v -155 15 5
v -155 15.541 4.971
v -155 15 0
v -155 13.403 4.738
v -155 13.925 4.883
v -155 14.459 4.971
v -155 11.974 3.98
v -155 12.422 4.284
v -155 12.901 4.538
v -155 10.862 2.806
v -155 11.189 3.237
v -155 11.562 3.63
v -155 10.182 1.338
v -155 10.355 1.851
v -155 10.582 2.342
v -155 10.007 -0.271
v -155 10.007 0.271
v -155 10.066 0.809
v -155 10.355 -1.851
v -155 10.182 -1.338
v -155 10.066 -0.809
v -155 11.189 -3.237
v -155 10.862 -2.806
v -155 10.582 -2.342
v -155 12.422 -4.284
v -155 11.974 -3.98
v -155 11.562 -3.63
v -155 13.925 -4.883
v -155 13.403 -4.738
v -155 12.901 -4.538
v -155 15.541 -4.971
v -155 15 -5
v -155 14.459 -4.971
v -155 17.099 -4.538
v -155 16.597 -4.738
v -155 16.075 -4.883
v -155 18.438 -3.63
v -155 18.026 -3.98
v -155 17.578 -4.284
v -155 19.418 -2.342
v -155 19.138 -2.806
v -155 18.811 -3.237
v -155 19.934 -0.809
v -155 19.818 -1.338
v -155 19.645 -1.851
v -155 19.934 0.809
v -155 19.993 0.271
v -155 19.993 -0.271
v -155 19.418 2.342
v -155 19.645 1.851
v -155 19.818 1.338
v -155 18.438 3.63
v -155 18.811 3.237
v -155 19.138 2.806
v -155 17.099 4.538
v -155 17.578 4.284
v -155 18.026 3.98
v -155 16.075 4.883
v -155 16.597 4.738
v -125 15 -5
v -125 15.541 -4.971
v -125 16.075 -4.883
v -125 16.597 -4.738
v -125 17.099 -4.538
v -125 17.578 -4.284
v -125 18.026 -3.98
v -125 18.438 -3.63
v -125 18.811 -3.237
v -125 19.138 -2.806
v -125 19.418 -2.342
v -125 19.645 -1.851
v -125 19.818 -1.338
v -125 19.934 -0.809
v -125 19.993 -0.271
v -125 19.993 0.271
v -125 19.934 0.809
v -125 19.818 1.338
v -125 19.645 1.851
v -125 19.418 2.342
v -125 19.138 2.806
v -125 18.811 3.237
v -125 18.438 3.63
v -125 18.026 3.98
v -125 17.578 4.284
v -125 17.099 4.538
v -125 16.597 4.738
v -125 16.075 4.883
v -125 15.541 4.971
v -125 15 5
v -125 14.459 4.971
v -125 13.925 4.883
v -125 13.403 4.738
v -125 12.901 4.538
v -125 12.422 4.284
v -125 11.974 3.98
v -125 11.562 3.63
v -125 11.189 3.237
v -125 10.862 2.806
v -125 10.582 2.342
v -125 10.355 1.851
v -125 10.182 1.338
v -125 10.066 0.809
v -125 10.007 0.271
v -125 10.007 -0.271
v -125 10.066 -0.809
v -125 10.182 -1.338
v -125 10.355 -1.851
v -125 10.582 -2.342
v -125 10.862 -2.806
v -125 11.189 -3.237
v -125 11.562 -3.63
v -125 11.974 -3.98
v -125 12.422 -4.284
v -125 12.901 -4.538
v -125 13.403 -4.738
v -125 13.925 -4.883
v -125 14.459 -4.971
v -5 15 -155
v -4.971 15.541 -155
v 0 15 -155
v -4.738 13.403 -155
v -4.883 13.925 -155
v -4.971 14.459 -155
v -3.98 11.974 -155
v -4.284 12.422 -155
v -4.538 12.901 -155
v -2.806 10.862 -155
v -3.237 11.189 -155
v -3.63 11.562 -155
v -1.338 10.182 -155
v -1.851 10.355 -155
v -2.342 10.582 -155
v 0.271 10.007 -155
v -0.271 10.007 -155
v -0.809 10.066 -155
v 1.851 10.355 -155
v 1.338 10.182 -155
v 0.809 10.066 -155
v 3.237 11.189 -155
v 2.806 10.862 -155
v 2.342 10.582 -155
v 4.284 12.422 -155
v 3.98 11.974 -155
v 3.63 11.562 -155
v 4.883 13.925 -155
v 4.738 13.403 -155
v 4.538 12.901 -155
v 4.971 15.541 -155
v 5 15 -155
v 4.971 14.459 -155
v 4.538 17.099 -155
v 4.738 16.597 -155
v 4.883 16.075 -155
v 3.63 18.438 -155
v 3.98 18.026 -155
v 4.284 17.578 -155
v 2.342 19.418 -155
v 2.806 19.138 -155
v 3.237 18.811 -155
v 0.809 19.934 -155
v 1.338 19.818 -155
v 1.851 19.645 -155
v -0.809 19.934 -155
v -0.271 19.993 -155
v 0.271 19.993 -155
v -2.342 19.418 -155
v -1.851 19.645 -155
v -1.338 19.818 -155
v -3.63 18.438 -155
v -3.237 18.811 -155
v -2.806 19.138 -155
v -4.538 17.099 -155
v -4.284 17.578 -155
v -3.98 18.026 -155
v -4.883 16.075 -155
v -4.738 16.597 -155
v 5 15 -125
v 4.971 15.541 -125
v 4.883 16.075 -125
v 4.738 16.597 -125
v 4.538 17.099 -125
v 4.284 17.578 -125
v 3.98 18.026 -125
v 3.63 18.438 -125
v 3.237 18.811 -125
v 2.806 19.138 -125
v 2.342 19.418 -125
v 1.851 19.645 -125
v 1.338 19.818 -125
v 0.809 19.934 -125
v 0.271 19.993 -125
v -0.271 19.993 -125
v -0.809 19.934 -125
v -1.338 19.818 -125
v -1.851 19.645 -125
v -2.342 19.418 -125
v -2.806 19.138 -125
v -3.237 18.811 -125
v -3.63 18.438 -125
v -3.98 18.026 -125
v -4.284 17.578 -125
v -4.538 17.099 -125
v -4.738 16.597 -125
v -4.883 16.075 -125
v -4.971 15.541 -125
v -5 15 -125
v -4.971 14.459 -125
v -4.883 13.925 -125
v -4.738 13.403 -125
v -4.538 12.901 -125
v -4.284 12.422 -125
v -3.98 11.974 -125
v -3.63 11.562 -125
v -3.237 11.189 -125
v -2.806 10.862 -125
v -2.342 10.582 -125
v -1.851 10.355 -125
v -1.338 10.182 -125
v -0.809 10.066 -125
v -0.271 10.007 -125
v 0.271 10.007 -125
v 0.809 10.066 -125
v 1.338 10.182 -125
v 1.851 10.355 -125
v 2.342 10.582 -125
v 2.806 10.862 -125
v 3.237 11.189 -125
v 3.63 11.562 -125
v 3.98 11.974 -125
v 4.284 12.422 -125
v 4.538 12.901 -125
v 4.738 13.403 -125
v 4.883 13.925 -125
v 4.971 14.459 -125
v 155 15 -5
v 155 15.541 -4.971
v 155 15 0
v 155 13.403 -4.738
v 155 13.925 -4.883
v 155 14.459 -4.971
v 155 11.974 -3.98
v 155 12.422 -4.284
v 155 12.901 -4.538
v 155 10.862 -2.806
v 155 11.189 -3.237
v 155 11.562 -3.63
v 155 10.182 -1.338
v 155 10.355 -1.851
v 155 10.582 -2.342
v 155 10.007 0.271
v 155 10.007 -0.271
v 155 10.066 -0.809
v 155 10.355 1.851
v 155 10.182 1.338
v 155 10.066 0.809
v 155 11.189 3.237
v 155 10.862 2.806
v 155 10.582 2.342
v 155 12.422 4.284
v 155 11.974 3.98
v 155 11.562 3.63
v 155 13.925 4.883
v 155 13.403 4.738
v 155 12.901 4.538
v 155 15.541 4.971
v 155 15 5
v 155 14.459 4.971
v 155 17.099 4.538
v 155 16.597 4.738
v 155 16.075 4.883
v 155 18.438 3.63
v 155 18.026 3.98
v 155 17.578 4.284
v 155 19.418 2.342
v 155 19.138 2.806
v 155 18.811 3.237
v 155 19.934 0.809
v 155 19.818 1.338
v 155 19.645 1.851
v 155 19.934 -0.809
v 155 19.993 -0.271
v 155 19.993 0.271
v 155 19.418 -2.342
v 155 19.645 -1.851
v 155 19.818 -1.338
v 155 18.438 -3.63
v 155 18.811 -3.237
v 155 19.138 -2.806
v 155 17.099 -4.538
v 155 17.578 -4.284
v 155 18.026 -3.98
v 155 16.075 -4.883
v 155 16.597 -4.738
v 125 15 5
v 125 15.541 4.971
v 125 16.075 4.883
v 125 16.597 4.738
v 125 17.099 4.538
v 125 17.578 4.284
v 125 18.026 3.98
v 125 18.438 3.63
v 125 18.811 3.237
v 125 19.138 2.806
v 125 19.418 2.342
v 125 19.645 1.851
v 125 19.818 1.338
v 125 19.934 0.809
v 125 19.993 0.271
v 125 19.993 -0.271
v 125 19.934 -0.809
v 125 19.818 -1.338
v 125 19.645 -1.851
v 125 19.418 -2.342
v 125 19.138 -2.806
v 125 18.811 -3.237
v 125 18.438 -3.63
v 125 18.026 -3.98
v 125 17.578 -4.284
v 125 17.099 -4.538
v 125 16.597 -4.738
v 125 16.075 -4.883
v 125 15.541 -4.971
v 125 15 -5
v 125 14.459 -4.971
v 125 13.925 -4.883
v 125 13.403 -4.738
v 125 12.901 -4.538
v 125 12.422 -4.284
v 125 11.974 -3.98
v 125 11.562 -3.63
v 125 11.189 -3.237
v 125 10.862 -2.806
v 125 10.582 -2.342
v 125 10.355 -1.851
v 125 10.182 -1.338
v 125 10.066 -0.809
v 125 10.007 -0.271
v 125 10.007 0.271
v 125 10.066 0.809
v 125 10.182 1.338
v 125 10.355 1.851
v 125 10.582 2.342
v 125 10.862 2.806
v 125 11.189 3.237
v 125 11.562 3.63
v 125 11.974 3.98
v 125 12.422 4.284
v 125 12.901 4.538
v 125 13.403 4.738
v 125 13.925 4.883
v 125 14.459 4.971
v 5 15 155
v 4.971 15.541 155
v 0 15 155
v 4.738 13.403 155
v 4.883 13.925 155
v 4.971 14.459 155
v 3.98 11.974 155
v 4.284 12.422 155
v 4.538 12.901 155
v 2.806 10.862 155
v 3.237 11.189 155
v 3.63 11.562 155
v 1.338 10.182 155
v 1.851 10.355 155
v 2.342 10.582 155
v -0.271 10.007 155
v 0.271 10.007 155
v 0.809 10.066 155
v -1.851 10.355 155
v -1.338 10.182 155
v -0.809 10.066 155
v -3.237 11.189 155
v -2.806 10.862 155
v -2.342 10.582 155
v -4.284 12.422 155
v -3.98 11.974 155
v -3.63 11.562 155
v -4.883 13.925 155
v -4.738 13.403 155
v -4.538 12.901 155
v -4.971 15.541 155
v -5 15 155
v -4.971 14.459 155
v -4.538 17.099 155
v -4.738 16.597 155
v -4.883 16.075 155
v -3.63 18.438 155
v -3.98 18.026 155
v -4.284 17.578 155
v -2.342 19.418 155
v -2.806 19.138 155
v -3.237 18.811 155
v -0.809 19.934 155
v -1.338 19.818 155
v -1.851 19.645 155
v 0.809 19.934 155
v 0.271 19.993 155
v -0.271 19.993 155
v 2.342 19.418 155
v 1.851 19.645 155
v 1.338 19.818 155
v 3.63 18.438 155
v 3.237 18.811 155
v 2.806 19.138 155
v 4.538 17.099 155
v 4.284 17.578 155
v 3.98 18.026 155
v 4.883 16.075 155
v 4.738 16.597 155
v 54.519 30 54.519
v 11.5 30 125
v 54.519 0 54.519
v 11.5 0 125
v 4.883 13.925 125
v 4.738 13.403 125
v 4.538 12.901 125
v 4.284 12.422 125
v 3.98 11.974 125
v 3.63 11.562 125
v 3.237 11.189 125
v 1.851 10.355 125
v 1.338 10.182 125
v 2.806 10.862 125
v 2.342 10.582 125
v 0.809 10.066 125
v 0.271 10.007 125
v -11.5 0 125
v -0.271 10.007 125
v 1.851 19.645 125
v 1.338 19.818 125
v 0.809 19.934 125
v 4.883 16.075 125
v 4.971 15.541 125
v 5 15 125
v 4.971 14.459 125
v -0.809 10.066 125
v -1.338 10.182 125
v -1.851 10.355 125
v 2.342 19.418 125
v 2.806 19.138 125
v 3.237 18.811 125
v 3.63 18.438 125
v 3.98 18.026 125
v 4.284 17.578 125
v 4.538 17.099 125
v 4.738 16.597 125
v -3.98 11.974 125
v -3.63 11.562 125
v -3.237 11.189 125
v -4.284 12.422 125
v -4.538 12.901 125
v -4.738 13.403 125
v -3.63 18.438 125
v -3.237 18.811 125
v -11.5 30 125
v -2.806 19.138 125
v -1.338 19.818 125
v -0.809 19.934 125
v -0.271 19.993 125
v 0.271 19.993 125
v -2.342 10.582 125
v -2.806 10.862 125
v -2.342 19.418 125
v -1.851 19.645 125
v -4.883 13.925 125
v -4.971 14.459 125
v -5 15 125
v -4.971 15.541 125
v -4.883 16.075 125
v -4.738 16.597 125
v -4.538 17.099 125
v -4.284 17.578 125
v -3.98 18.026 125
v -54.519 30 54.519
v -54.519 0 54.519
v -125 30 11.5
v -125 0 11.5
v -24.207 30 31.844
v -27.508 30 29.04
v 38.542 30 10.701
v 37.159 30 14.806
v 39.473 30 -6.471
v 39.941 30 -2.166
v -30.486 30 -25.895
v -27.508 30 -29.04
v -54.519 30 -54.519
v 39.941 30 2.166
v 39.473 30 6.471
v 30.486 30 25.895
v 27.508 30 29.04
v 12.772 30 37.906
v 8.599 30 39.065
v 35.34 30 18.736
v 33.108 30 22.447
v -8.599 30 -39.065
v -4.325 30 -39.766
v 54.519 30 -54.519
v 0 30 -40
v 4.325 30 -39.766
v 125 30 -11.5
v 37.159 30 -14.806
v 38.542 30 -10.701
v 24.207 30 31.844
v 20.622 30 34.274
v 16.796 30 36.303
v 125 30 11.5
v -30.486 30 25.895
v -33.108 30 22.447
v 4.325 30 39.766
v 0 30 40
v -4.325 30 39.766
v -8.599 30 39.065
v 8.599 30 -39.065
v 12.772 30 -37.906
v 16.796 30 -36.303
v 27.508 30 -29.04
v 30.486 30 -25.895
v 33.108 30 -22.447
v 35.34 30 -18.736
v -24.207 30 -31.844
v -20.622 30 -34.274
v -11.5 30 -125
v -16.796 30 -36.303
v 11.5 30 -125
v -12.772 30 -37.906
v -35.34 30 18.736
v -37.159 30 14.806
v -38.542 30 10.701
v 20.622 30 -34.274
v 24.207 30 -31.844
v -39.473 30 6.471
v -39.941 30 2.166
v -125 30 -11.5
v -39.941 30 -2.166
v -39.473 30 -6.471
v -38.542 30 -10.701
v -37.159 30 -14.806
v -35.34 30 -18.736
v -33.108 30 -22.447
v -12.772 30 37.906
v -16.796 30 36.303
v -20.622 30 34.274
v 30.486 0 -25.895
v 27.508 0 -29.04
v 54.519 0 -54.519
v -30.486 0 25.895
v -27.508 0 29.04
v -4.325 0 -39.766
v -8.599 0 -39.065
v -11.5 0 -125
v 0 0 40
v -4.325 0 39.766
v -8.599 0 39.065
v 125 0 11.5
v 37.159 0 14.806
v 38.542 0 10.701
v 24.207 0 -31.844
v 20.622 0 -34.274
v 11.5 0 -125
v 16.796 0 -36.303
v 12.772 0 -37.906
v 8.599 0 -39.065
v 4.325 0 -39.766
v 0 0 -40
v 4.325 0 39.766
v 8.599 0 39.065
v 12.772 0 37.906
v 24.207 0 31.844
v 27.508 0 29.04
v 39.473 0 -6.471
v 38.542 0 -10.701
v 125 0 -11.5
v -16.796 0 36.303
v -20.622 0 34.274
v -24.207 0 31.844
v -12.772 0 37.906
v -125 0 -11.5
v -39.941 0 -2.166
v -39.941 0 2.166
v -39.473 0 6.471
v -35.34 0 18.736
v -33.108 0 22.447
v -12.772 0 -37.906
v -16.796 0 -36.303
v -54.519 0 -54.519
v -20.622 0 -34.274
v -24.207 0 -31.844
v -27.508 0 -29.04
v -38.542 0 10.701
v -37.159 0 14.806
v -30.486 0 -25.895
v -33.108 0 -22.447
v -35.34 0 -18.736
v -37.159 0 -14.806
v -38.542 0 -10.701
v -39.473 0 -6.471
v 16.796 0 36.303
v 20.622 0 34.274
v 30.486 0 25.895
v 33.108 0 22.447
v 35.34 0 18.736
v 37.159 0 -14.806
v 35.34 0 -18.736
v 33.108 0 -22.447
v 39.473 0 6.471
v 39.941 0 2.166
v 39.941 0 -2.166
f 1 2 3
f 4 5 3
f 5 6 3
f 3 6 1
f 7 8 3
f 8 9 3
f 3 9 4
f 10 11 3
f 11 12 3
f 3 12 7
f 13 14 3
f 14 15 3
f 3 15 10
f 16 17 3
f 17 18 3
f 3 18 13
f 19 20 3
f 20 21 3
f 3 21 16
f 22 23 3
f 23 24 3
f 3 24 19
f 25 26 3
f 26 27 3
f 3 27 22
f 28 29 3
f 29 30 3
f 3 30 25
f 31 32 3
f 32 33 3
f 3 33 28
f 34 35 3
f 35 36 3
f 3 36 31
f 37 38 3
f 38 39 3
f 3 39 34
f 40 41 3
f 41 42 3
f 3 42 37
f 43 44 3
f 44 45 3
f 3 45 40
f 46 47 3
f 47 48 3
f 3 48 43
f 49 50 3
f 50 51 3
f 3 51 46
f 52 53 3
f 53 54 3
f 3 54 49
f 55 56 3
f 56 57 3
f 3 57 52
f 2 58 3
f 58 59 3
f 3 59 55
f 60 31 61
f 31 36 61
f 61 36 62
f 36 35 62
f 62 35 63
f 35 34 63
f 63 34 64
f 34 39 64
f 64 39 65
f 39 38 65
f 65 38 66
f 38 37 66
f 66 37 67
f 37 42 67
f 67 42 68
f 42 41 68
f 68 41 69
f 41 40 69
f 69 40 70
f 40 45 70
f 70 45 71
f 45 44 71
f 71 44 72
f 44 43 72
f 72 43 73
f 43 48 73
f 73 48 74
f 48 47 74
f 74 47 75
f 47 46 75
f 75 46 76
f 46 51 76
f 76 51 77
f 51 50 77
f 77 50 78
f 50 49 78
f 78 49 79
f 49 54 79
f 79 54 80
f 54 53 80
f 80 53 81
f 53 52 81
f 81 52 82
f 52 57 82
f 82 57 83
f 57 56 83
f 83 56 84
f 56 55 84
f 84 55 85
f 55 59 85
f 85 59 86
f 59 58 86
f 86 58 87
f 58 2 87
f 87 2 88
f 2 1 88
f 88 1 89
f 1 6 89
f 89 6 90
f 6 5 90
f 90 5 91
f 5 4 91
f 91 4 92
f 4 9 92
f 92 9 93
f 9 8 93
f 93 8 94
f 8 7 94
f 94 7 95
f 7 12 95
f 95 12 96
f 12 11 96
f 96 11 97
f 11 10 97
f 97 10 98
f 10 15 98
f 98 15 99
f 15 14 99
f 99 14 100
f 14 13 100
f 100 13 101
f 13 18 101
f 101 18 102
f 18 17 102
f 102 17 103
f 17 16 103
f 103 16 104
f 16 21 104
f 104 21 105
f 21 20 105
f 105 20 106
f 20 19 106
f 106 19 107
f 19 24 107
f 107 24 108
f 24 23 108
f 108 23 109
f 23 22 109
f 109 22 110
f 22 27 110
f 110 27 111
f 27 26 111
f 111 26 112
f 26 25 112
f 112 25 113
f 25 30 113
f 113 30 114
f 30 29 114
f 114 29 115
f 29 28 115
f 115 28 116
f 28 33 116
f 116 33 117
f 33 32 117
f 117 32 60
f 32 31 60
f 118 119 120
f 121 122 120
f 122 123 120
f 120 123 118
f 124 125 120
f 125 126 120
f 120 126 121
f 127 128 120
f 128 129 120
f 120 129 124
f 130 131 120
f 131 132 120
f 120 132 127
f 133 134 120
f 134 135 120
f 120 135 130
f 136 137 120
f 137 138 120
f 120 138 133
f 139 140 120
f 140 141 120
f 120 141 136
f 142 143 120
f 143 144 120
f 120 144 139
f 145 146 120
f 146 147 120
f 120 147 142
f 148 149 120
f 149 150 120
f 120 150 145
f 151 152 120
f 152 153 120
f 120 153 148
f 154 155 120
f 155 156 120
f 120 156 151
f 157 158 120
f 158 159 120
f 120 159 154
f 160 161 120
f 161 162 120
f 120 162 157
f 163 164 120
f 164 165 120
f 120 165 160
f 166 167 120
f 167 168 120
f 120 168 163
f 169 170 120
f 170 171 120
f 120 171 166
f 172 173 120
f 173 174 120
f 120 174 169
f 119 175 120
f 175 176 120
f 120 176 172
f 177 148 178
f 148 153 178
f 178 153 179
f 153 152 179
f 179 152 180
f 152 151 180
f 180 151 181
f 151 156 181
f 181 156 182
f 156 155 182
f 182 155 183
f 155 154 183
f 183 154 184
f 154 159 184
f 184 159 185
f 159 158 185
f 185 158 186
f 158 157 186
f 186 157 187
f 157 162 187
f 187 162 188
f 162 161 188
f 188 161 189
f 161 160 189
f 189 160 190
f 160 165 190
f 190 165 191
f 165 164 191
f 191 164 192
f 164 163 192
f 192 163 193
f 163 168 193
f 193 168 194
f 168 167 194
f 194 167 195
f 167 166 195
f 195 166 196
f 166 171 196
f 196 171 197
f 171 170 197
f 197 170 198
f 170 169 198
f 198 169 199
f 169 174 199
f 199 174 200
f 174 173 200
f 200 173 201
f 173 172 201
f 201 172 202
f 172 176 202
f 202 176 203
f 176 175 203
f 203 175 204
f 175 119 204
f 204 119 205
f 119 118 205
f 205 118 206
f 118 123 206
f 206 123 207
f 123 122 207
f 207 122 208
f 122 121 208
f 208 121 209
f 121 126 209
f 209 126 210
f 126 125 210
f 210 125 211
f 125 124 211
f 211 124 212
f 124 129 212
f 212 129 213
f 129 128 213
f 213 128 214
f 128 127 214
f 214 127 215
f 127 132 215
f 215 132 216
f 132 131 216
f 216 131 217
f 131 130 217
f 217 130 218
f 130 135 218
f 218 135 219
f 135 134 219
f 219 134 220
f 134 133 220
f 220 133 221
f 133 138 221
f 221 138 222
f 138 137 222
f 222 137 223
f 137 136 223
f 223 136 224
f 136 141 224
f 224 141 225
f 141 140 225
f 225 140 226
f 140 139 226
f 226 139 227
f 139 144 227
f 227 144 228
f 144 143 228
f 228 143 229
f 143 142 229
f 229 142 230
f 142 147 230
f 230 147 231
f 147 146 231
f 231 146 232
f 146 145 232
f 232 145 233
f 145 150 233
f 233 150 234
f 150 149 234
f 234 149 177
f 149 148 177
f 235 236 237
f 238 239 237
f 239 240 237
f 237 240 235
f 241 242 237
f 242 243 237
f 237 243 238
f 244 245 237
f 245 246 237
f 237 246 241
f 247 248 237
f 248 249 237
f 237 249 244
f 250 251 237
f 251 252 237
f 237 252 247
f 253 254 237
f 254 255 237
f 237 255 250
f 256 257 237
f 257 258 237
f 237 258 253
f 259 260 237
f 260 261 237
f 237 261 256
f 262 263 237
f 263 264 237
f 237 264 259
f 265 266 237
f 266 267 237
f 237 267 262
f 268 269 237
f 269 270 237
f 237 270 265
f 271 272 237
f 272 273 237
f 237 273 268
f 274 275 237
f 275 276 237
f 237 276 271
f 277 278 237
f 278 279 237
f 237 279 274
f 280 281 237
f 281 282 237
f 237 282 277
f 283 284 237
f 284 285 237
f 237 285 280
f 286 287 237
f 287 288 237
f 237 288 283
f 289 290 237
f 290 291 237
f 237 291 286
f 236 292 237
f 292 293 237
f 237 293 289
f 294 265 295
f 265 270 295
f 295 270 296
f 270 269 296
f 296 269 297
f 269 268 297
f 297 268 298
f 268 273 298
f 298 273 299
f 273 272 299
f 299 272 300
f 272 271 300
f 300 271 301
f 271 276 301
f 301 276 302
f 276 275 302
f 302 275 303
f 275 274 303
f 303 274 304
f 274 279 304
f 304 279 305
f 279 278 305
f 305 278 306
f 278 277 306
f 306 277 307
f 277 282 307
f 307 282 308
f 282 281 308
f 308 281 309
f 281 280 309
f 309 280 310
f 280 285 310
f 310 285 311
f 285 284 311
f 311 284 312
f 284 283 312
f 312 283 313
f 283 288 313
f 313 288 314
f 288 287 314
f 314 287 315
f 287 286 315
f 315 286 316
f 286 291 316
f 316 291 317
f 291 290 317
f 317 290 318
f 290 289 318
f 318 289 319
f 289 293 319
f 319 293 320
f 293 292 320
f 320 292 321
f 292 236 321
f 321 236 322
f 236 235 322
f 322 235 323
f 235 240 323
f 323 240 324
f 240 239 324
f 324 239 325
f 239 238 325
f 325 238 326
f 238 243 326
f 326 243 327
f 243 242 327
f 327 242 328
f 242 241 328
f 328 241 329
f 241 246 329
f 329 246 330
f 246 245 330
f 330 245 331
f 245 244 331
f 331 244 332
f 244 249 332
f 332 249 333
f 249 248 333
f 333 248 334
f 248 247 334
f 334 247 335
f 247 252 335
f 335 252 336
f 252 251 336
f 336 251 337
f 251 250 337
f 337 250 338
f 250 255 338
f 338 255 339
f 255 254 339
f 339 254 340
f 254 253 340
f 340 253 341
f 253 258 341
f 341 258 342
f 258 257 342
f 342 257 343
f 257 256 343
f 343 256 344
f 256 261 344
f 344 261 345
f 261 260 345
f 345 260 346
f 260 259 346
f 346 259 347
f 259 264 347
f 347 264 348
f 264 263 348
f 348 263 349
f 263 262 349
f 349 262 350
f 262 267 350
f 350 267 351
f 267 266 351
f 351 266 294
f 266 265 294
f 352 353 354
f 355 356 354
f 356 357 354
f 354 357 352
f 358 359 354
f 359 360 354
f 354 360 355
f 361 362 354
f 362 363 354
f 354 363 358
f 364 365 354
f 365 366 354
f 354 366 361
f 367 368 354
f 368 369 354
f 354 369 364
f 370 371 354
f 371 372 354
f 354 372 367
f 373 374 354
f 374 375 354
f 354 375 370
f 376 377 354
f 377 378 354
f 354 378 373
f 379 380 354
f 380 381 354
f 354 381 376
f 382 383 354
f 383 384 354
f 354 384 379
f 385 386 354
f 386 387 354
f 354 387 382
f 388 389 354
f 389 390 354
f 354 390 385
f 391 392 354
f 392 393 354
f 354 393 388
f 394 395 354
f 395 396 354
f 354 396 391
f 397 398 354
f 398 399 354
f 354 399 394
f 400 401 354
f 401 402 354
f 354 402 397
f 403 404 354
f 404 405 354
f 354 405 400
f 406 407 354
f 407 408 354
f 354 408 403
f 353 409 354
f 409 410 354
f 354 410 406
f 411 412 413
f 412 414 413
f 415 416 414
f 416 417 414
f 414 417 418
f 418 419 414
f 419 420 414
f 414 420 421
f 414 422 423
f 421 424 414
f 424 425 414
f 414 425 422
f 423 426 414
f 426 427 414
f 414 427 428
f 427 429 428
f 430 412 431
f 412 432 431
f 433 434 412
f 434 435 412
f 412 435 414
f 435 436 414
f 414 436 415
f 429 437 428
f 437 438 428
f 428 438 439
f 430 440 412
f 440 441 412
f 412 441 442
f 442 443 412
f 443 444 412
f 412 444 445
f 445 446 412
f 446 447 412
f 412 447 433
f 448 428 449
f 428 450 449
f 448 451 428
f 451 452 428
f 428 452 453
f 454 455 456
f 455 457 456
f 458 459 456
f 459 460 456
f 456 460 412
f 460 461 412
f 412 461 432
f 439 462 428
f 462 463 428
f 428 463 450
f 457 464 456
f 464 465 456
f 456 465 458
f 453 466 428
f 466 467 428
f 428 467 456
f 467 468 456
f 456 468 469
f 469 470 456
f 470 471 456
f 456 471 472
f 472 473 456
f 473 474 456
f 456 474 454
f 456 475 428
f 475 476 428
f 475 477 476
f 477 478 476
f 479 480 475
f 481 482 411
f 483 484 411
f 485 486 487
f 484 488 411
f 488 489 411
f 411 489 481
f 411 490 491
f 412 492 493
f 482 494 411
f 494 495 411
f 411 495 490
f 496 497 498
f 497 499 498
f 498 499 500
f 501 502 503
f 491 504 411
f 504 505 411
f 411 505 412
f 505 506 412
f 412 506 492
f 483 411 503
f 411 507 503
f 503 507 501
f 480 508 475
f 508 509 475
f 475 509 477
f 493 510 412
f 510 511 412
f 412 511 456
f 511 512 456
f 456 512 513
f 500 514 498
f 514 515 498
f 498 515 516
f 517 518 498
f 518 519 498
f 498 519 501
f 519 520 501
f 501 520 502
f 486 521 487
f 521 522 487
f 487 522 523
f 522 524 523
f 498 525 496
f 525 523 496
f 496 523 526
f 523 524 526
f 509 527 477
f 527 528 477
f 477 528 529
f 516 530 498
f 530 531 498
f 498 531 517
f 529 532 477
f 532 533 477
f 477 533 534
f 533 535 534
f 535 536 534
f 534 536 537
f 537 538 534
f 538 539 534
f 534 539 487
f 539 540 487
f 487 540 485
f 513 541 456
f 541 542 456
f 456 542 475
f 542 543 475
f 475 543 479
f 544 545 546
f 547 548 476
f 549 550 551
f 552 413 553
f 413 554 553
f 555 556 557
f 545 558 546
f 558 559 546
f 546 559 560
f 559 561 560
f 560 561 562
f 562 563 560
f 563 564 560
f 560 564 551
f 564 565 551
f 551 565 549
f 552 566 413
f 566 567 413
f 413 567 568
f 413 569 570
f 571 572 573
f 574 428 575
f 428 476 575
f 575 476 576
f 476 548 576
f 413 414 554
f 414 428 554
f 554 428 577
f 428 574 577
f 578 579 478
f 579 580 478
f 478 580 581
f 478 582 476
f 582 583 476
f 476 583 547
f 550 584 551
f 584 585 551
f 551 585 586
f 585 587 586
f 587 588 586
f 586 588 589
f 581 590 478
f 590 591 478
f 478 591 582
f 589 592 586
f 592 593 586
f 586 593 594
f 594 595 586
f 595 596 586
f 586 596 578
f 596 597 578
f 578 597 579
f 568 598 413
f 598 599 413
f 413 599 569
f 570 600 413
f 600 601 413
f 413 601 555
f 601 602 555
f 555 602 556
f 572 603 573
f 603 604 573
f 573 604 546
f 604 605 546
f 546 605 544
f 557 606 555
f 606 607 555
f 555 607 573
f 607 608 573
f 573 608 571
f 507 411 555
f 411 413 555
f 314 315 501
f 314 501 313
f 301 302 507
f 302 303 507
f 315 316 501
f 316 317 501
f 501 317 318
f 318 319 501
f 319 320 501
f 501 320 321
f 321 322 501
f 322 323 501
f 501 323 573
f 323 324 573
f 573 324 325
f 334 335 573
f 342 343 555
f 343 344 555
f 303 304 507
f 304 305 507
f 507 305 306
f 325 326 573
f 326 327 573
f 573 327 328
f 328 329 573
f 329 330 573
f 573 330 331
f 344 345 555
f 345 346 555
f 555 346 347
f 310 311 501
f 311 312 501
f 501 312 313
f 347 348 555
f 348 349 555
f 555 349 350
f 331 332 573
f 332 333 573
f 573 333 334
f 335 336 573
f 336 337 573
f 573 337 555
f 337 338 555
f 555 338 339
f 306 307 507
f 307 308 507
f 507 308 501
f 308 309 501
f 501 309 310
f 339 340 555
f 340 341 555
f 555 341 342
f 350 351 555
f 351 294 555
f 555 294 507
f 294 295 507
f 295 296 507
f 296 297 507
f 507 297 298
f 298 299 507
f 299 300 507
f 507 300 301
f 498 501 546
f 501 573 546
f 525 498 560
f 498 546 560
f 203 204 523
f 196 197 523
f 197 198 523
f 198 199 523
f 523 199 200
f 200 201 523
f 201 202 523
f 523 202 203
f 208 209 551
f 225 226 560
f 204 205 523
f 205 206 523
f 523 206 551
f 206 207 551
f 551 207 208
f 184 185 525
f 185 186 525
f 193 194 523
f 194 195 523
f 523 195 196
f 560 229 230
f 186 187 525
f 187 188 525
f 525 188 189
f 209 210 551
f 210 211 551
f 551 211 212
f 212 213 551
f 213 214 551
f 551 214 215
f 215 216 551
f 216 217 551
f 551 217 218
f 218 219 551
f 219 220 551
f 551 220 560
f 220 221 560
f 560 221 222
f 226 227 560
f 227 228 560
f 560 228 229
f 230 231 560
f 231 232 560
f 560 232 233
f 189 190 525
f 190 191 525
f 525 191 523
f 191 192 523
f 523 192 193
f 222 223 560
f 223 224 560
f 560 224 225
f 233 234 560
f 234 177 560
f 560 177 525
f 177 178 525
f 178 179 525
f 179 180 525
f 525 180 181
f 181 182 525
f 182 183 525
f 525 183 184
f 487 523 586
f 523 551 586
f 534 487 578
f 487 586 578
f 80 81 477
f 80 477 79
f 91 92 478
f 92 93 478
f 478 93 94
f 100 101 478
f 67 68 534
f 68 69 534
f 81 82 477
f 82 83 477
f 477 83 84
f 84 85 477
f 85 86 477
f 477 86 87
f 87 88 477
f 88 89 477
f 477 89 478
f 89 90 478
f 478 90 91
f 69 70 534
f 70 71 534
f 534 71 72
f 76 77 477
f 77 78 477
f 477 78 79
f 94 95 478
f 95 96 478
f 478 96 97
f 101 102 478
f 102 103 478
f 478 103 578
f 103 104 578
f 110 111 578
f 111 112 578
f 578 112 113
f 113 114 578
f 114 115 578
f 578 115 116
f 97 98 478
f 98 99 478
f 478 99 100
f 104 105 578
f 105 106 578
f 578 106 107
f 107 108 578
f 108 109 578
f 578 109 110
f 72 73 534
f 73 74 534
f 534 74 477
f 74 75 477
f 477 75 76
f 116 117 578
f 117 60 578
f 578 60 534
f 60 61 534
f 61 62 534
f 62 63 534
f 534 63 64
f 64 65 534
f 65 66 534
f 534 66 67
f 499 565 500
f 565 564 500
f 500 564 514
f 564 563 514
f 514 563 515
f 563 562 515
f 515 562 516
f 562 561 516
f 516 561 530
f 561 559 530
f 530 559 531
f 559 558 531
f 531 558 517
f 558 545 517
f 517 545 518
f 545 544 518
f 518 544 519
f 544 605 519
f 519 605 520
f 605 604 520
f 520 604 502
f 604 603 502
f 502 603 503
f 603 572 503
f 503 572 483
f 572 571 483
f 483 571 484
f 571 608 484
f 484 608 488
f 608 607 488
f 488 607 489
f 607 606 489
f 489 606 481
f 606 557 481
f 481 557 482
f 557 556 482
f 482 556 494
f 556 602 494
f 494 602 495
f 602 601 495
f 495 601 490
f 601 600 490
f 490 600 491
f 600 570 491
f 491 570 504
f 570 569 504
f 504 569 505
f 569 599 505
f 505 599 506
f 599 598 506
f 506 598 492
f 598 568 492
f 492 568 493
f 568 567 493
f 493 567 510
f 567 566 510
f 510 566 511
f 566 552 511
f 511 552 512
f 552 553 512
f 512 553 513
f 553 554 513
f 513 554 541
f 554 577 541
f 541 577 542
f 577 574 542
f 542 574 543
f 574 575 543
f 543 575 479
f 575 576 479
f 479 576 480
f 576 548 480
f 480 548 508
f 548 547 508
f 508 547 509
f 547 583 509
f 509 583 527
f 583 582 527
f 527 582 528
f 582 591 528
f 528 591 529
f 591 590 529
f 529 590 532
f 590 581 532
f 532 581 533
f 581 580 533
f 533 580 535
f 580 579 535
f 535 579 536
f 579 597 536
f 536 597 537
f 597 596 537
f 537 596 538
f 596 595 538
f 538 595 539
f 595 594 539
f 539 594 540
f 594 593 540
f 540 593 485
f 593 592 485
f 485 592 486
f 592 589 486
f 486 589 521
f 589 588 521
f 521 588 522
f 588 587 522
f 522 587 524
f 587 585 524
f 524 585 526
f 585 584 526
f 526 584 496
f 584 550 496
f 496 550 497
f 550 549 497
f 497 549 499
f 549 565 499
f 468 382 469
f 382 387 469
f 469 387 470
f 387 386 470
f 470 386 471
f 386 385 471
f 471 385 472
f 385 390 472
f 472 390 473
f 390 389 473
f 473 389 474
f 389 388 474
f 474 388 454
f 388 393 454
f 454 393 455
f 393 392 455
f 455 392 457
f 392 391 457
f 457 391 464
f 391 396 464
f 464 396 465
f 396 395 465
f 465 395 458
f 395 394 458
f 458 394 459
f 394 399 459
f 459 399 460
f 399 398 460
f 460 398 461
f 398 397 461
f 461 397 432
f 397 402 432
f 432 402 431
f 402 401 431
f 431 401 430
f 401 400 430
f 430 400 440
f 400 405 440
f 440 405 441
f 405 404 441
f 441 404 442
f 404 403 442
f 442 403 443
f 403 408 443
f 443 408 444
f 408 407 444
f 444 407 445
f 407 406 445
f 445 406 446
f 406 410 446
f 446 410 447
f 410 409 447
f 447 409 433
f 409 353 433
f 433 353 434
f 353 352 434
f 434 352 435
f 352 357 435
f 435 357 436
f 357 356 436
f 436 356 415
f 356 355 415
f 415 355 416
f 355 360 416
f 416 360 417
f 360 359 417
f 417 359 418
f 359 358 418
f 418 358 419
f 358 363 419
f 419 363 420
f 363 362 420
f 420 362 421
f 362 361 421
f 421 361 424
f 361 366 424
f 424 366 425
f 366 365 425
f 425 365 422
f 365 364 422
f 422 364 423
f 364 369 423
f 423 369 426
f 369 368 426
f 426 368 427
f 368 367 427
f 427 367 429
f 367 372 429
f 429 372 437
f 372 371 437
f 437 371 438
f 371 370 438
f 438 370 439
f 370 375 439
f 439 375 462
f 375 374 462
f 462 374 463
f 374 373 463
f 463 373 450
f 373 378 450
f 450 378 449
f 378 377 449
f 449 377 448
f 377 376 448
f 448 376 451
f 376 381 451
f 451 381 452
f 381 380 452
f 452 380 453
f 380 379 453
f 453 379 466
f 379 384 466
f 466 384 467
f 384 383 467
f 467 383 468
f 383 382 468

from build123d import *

# Parameters (mm, degrees)
SKETCH1_R           = 40
BOSS_EXTRUDE1_DEPTH = 30
SKETCH2_R           = 5
BOSS_EXTRUDE2_DEPTH = 30
CIRPATTERN1_COUNT   = 4


with BuildPart() as part:
    # Sketch1 → Boss-Extrude1 (new body)
    with BuildSketch(Plane(origin=(0, 0, 0), x_dir=(1, 0, 0), z_dir=(0, 1, 0))):
        Polygon((11.5, 125), (-11.5, 125), (-54.518512439, 54.518512439), (-125, 11.5), (-125, -11.5), (-54.518512439, -54.518512439), (-11.5, -125), (11.5, -125), (54.518512439, -54.518512439), (125, -11.5), (125, 11.5), (54.518512439, 54.518512439), align=None)
        with Locations(Location((0, 0, 0), (0, 0, 270))):
            Circle(SKETCH1_R, mode=Mode.SUBTRACT)
    extrude(amount=BOSS_EXTRUDE1_DEPTH)

    # Sketch2 → Boss-Extrude2 (add)
    with BuildSketch(Plane.XY.offset(125)):
        with Locations((0, 15)):
            Circle(SKETCH2_R)
    boss_extrude2 = extrude(amount=BOSS_EXTRUDE2_DEPTH)

    # CirPattern1: Boss-Extrude2 ×4 about axis
    cirpattern1_axis = Axis((0, 0, 0), (0, 1, 0))
    for i in range(1, CIRPATTERN1_COUNT):
        add(boss_extrude2.rotate(cirpattern1_axis, i * 360 / CIRPATTERN1_COUNT))


solid = part.part
